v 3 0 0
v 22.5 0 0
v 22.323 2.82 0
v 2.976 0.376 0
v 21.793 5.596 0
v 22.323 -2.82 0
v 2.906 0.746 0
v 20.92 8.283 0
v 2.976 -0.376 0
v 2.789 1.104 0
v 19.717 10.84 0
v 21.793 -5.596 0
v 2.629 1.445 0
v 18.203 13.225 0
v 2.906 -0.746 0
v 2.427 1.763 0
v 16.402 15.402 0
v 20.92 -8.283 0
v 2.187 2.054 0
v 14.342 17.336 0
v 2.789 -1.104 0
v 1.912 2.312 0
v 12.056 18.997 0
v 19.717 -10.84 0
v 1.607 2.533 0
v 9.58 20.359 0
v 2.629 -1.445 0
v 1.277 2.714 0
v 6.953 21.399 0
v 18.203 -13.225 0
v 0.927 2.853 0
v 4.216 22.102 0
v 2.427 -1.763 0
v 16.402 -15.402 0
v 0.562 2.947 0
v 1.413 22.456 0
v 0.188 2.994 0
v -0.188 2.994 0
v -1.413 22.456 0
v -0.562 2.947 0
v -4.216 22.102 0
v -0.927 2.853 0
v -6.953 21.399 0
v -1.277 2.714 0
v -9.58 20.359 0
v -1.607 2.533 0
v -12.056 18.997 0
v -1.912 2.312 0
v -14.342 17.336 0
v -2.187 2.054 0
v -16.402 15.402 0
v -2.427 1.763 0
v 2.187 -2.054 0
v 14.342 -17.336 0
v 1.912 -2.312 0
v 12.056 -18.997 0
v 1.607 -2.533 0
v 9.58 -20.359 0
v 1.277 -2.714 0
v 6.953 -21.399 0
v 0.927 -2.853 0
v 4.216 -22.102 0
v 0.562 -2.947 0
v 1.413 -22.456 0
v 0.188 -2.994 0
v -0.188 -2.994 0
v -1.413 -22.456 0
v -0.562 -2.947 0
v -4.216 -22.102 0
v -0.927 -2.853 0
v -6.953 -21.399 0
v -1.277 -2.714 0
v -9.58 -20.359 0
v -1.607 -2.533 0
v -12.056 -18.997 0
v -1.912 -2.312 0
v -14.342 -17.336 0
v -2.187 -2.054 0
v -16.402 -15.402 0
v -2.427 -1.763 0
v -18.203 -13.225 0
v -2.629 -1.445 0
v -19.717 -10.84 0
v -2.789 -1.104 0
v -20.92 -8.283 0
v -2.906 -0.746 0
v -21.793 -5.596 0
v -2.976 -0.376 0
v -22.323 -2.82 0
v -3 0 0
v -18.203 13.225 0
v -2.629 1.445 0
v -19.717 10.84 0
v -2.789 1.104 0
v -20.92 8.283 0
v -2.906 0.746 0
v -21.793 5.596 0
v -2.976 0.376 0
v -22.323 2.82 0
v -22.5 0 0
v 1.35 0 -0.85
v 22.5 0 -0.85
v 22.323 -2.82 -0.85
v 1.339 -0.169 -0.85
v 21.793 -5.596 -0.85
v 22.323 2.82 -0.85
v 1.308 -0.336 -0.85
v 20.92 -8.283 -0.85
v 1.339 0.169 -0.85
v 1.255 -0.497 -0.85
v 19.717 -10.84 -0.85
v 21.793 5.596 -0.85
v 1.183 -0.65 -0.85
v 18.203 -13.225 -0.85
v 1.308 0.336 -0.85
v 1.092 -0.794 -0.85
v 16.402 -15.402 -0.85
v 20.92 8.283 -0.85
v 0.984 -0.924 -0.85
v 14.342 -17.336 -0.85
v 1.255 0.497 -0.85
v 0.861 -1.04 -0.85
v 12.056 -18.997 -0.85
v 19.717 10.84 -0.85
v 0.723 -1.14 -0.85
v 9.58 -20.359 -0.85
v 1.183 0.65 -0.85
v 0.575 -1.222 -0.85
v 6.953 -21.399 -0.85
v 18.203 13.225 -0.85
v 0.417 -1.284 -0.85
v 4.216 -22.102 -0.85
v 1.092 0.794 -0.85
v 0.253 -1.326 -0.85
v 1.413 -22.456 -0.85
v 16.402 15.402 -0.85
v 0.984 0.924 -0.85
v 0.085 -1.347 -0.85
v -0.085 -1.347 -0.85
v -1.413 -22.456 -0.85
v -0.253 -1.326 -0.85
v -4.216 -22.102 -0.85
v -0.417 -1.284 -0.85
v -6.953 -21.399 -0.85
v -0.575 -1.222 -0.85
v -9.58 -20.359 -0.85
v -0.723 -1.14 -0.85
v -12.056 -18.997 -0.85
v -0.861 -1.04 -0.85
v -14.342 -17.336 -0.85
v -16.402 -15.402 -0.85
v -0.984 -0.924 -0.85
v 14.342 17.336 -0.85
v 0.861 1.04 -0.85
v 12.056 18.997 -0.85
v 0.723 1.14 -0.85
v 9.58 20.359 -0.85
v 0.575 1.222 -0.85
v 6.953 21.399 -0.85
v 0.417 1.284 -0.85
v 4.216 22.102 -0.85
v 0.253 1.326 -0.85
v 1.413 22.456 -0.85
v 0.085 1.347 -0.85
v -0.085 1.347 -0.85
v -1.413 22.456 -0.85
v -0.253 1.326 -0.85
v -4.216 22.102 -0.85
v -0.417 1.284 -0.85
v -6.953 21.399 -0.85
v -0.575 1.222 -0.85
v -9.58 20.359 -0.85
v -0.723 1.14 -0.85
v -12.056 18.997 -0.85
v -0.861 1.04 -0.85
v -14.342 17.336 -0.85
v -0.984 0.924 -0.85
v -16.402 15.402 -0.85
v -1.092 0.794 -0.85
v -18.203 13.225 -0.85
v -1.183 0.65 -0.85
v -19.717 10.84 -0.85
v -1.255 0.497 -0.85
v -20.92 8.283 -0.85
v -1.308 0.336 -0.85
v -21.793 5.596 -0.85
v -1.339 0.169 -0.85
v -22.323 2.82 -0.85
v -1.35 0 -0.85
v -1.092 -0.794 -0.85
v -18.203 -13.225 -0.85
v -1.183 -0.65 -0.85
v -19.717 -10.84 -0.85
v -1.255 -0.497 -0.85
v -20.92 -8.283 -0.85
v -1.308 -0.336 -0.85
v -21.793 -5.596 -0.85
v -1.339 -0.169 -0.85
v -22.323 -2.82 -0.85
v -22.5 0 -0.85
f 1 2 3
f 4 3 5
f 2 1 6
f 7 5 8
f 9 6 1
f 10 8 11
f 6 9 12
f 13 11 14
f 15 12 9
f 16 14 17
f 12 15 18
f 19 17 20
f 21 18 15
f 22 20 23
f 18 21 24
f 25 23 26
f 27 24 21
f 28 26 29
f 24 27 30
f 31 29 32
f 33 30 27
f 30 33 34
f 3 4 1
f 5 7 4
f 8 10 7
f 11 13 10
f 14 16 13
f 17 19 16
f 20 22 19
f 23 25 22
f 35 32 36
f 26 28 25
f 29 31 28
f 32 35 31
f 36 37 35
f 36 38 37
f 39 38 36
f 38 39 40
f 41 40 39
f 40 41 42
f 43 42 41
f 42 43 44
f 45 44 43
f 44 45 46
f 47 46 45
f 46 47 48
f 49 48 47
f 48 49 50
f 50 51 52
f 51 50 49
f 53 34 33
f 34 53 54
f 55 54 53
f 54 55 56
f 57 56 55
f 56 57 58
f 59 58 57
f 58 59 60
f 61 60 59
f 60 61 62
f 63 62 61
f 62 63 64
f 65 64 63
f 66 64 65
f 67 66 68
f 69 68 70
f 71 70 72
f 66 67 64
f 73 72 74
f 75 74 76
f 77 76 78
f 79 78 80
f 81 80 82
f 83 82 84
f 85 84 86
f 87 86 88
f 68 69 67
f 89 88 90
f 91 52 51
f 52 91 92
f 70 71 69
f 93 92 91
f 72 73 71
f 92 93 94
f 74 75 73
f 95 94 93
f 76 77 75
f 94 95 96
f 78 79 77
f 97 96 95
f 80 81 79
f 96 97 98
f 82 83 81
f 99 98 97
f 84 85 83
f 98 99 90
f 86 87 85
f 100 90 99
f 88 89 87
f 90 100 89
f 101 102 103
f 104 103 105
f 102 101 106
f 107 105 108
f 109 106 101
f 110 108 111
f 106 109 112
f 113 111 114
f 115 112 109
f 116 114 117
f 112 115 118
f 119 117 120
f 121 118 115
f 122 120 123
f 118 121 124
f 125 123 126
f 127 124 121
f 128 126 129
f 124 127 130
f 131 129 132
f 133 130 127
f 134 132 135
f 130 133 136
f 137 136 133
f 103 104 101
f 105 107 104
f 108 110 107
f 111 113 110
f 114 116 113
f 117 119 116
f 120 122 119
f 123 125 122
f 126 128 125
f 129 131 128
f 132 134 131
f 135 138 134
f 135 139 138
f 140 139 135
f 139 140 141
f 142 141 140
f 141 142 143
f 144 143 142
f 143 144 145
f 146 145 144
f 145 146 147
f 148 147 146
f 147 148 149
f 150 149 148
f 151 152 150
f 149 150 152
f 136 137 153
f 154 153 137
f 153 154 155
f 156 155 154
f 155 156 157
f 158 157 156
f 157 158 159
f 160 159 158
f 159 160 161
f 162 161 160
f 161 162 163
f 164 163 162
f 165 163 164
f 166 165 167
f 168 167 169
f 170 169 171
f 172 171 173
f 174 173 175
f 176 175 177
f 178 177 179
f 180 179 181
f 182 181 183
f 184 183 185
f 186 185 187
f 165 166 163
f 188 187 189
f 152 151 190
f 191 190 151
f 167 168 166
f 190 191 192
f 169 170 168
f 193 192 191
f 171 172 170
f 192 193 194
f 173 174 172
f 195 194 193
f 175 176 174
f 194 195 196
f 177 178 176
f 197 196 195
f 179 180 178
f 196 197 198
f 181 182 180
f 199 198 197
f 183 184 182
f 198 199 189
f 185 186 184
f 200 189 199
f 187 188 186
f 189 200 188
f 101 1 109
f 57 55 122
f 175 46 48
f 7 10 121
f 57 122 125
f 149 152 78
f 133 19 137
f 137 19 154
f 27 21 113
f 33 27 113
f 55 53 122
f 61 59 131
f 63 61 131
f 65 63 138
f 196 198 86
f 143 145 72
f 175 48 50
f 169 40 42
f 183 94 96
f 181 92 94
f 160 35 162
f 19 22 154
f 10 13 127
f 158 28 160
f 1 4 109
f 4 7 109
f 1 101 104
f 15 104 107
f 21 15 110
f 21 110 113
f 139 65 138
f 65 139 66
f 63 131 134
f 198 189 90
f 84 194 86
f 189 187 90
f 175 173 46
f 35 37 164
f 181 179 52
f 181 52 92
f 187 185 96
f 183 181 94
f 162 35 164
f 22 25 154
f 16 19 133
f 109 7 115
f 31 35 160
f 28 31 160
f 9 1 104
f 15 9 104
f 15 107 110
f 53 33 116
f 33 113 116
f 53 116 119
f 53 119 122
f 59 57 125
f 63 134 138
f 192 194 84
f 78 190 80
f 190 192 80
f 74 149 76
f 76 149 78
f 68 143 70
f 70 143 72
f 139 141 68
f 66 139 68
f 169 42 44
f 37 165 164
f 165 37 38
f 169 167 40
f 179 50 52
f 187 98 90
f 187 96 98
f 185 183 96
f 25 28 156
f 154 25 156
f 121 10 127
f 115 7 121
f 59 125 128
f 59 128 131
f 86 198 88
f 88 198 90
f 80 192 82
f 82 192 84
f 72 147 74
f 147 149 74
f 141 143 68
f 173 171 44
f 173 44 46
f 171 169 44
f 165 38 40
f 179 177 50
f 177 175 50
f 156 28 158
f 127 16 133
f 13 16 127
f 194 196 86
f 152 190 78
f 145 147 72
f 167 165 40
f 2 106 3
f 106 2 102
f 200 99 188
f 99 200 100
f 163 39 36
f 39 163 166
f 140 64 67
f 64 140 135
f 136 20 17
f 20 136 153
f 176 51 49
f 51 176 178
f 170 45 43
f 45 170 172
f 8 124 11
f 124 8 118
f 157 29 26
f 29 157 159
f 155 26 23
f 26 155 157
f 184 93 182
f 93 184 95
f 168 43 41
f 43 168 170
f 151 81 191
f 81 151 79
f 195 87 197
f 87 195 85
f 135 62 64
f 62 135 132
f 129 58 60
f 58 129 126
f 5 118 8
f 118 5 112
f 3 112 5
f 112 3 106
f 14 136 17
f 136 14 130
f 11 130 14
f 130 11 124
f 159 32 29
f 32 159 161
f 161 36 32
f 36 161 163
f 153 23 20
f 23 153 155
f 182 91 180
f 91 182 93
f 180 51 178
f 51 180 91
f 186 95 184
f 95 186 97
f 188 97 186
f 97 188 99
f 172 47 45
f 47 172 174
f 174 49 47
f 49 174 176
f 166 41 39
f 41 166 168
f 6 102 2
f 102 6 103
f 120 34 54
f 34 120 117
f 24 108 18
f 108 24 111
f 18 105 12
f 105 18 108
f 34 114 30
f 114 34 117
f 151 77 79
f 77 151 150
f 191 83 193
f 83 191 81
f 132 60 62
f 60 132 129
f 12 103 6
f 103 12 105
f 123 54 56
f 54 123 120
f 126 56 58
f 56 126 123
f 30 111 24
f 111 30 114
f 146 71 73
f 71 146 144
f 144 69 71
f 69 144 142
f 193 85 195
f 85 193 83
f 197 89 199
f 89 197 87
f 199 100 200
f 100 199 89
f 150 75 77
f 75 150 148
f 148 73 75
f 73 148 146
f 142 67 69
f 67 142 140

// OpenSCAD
$fn = 50;


difference() {
	union() {
		translate(v = [0, 0, -0.8500000000]) {
			cylinder(h = 0.8500000000, r = 22.5000000000);
		}
	}
	union() {
		translate(v = [0, 0, 0]) {
			rotate(a = [0, 0, 0]) {
				difference() {
					union() {
						#translate(v = [0, 0, -0.8500000000]) {
							cylinder(h = 0.8500000000, r = 1.0000000000);
						}
						#translate(v = [0, 0, -0.8500000000]) {
							cylinder(h = 0.8500000000, r1 = 1.3500000000, r2 = 3.0000000000);
						}
						#translate(v = [0, 0, -0.8500000000]) {
							cylinder(h = 0.8500000000, r = 1.3500000000);
						}
						#translate(v = [0, 0, -0.8500000000]) {
							cylinder(h = 0.8500000000, r = 1.0000000000);
						}
					}
					union();
				}
			}
		}
	}
}
